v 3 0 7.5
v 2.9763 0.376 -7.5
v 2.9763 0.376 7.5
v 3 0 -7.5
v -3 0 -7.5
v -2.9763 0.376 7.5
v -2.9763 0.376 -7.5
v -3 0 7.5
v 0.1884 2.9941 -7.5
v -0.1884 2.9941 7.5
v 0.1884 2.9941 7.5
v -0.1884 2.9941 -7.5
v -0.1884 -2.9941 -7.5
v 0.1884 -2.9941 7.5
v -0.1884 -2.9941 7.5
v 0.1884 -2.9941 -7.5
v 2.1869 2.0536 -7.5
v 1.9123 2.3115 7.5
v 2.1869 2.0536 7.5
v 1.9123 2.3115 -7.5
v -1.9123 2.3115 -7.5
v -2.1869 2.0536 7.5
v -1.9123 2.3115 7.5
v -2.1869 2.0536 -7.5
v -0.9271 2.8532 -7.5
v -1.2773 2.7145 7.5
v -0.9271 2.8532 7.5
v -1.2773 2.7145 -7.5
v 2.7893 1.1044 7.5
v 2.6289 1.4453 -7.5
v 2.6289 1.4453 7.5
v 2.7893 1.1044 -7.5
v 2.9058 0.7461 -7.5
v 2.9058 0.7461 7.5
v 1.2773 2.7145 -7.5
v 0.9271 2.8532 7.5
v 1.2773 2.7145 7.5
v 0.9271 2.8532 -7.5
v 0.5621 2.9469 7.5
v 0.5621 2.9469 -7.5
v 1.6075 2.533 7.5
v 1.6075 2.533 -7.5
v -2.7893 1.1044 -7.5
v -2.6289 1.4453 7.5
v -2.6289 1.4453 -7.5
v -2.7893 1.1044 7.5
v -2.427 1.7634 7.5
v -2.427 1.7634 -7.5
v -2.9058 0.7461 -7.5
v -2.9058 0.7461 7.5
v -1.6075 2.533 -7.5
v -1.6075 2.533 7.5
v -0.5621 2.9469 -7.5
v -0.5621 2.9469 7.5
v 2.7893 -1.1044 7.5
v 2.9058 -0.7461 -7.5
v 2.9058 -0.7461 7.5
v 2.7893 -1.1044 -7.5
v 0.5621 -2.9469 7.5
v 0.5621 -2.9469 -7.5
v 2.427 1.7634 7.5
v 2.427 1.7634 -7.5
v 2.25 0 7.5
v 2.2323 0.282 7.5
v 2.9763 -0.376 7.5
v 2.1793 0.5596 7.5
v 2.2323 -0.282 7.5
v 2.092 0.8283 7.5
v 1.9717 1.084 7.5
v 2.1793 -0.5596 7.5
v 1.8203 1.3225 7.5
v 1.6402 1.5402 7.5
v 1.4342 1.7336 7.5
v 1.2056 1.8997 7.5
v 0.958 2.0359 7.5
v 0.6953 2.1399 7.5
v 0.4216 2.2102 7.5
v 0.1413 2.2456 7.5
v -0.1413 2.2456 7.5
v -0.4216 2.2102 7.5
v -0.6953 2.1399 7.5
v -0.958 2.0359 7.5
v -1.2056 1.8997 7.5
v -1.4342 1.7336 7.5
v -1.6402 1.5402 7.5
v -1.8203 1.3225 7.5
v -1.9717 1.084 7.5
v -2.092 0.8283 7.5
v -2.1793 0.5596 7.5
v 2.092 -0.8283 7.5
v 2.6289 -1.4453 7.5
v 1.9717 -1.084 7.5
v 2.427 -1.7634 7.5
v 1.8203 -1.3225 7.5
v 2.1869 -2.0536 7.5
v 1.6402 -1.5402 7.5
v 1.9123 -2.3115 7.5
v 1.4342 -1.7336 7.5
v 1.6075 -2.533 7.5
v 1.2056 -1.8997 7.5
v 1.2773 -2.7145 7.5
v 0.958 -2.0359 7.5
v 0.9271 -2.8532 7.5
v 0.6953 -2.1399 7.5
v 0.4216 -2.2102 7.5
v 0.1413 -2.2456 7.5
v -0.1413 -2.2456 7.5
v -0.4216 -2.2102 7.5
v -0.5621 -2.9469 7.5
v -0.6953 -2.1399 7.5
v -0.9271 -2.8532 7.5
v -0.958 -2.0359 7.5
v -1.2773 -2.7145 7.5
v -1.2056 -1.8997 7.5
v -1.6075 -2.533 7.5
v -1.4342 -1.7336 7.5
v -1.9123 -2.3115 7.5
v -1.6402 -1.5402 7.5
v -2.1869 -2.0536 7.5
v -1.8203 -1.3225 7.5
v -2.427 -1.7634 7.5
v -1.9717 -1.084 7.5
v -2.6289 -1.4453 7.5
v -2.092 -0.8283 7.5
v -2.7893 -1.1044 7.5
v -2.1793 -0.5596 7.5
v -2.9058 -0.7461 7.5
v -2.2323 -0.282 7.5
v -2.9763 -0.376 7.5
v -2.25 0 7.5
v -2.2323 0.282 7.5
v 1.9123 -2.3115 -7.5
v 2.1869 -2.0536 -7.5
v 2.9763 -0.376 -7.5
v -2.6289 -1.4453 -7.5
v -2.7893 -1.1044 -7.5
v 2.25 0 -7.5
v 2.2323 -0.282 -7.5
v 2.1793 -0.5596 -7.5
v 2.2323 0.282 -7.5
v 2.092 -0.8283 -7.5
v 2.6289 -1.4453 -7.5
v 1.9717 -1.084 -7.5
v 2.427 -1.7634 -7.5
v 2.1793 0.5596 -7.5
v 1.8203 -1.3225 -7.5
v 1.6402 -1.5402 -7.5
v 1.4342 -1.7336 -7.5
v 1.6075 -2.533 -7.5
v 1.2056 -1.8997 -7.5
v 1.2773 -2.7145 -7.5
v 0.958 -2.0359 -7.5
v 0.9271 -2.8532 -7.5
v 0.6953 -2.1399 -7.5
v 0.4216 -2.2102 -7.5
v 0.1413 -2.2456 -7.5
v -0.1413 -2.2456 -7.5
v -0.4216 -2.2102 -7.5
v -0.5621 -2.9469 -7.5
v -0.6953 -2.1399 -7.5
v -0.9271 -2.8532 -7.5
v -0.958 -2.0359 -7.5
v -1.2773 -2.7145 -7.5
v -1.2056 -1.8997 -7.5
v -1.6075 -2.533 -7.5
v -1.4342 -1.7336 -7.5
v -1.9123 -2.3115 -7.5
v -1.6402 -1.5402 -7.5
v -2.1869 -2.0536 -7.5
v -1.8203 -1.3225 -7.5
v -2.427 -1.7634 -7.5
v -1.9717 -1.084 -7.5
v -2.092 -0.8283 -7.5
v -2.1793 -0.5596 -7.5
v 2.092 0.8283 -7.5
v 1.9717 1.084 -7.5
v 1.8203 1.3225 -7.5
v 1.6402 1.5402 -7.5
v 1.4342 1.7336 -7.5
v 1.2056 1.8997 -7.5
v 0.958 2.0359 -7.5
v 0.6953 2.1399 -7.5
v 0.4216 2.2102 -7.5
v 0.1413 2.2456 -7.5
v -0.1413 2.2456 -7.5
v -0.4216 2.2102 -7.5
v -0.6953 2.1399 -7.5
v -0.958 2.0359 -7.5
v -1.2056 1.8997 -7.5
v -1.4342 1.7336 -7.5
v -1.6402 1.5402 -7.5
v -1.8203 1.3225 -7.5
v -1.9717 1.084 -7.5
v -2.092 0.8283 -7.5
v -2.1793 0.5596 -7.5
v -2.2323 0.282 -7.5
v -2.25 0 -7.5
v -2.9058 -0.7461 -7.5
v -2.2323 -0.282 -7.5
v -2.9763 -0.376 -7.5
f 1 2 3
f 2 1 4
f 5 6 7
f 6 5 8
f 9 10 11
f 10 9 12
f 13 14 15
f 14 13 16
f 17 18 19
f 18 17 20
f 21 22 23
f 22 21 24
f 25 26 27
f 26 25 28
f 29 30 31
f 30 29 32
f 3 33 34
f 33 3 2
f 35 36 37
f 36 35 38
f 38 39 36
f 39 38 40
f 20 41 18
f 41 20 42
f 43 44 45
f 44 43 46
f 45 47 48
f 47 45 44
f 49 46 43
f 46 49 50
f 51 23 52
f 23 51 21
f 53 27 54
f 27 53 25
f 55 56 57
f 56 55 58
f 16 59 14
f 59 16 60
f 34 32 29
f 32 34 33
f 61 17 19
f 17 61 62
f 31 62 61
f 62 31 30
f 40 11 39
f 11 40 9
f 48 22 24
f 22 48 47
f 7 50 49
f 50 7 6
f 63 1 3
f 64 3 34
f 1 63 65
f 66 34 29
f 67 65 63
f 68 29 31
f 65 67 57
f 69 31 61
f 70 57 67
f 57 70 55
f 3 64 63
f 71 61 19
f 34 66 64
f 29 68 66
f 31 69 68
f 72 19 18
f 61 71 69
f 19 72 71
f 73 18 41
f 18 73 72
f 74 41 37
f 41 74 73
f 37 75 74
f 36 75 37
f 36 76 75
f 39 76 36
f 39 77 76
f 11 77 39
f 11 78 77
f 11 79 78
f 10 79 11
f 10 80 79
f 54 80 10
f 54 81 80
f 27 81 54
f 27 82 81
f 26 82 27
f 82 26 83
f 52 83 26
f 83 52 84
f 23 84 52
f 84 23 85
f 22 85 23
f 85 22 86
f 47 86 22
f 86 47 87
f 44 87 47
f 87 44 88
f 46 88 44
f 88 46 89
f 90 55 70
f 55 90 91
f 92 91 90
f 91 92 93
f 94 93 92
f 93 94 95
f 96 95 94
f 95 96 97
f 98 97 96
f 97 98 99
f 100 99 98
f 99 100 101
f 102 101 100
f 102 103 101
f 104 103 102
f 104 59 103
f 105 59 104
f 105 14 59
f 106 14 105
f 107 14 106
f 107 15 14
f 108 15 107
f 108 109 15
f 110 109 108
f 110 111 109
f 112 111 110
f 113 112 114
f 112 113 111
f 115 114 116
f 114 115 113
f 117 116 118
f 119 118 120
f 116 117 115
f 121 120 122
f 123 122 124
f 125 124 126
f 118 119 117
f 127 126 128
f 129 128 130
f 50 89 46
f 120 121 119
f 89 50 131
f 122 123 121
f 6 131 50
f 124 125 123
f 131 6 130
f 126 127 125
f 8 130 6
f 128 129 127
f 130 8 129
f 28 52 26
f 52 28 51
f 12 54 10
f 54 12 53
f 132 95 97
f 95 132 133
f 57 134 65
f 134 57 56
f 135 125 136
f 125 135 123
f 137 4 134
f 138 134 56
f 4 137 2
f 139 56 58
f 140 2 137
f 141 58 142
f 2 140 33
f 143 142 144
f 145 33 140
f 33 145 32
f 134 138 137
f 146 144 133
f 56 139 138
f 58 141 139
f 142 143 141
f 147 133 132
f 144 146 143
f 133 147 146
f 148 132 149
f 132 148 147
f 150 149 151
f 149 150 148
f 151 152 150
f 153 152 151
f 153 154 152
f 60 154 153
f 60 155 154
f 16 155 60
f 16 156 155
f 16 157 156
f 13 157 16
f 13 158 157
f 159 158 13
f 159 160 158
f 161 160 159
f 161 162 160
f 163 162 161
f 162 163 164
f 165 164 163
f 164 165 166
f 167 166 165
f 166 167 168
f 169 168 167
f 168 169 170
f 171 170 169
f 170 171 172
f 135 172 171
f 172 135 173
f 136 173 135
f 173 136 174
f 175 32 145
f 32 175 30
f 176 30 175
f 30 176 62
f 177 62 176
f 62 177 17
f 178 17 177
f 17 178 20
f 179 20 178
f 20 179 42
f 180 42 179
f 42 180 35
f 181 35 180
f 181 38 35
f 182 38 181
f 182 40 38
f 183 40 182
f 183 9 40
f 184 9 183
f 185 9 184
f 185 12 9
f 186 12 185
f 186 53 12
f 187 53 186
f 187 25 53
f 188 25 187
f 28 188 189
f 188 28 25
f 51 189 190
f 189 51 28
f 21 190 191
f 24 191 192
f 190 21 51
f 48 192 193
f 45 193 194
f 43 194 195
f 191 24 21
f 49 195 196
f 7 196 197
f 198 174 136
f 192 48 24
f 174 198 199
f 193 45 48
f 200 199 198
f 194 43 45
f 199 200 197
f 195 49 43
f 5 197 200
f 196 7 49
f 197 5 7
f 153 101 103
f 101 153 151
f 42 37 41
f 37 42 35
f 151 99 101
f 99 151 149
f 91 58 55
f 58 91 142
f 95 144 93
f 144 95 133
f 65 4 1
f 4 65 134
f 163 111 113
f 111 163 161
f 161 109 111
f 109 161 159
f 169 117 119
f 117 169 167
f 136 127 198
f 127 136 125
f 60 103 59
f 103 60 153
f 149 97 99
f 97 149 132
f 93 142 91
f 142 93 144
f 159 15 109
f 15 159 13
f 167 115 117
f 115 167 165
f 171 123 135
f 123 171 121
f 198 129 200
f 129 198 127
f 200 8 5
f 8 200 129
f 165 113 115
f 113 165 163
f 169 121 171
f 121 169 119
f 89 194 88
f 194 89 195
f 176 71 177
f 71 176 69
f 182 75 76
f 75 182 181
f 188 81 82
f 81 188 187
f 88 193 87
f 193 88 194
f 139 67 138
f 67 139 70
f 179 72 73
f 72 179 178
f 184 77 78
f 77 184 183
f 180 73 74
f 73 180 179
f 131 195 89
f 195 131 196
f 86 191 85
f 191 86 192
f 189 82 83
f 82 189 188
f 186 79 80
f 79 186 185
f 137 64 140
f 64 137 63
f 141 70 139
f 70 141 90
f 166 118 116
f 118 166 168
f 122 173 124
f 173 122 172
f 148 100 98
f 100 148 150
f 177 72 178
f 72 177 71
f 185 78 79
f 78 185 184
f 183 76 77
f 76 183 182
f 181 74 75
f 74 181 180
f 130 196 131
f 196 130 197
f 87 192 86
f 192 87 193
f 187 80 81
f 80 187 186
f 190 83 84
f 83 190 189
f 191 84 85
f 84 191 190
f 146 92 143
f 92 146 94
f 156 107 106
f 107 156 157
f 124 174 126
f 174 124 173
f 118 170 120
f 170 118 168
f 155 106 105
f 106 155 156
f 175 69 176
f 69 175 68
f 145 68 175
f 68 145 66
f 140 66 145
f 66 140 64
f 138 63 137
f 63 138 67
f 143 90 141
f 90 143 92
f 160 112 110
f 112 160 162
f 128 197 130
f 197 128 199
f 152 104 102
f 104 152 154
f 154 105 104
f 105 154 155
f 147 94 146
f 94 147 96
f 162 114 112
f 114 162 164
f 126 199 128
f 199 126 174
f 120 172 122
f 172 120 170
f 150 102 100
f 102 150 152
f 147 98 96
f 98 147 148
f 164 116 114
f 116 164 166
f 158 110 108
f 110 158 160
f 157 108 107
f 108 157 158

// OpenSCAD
$fn = 50;


difference() {
	union() {
		translate(v = [0, 0, -7.5000000000]) {
			cylinder(h = 15, r = 3.0000000000);
		}
	}
	union() {
		translate(v = [0, 0, -100.0000000000]) {
			cylinder(h = 200, r = 2.2500000000);
		}
	}
}
